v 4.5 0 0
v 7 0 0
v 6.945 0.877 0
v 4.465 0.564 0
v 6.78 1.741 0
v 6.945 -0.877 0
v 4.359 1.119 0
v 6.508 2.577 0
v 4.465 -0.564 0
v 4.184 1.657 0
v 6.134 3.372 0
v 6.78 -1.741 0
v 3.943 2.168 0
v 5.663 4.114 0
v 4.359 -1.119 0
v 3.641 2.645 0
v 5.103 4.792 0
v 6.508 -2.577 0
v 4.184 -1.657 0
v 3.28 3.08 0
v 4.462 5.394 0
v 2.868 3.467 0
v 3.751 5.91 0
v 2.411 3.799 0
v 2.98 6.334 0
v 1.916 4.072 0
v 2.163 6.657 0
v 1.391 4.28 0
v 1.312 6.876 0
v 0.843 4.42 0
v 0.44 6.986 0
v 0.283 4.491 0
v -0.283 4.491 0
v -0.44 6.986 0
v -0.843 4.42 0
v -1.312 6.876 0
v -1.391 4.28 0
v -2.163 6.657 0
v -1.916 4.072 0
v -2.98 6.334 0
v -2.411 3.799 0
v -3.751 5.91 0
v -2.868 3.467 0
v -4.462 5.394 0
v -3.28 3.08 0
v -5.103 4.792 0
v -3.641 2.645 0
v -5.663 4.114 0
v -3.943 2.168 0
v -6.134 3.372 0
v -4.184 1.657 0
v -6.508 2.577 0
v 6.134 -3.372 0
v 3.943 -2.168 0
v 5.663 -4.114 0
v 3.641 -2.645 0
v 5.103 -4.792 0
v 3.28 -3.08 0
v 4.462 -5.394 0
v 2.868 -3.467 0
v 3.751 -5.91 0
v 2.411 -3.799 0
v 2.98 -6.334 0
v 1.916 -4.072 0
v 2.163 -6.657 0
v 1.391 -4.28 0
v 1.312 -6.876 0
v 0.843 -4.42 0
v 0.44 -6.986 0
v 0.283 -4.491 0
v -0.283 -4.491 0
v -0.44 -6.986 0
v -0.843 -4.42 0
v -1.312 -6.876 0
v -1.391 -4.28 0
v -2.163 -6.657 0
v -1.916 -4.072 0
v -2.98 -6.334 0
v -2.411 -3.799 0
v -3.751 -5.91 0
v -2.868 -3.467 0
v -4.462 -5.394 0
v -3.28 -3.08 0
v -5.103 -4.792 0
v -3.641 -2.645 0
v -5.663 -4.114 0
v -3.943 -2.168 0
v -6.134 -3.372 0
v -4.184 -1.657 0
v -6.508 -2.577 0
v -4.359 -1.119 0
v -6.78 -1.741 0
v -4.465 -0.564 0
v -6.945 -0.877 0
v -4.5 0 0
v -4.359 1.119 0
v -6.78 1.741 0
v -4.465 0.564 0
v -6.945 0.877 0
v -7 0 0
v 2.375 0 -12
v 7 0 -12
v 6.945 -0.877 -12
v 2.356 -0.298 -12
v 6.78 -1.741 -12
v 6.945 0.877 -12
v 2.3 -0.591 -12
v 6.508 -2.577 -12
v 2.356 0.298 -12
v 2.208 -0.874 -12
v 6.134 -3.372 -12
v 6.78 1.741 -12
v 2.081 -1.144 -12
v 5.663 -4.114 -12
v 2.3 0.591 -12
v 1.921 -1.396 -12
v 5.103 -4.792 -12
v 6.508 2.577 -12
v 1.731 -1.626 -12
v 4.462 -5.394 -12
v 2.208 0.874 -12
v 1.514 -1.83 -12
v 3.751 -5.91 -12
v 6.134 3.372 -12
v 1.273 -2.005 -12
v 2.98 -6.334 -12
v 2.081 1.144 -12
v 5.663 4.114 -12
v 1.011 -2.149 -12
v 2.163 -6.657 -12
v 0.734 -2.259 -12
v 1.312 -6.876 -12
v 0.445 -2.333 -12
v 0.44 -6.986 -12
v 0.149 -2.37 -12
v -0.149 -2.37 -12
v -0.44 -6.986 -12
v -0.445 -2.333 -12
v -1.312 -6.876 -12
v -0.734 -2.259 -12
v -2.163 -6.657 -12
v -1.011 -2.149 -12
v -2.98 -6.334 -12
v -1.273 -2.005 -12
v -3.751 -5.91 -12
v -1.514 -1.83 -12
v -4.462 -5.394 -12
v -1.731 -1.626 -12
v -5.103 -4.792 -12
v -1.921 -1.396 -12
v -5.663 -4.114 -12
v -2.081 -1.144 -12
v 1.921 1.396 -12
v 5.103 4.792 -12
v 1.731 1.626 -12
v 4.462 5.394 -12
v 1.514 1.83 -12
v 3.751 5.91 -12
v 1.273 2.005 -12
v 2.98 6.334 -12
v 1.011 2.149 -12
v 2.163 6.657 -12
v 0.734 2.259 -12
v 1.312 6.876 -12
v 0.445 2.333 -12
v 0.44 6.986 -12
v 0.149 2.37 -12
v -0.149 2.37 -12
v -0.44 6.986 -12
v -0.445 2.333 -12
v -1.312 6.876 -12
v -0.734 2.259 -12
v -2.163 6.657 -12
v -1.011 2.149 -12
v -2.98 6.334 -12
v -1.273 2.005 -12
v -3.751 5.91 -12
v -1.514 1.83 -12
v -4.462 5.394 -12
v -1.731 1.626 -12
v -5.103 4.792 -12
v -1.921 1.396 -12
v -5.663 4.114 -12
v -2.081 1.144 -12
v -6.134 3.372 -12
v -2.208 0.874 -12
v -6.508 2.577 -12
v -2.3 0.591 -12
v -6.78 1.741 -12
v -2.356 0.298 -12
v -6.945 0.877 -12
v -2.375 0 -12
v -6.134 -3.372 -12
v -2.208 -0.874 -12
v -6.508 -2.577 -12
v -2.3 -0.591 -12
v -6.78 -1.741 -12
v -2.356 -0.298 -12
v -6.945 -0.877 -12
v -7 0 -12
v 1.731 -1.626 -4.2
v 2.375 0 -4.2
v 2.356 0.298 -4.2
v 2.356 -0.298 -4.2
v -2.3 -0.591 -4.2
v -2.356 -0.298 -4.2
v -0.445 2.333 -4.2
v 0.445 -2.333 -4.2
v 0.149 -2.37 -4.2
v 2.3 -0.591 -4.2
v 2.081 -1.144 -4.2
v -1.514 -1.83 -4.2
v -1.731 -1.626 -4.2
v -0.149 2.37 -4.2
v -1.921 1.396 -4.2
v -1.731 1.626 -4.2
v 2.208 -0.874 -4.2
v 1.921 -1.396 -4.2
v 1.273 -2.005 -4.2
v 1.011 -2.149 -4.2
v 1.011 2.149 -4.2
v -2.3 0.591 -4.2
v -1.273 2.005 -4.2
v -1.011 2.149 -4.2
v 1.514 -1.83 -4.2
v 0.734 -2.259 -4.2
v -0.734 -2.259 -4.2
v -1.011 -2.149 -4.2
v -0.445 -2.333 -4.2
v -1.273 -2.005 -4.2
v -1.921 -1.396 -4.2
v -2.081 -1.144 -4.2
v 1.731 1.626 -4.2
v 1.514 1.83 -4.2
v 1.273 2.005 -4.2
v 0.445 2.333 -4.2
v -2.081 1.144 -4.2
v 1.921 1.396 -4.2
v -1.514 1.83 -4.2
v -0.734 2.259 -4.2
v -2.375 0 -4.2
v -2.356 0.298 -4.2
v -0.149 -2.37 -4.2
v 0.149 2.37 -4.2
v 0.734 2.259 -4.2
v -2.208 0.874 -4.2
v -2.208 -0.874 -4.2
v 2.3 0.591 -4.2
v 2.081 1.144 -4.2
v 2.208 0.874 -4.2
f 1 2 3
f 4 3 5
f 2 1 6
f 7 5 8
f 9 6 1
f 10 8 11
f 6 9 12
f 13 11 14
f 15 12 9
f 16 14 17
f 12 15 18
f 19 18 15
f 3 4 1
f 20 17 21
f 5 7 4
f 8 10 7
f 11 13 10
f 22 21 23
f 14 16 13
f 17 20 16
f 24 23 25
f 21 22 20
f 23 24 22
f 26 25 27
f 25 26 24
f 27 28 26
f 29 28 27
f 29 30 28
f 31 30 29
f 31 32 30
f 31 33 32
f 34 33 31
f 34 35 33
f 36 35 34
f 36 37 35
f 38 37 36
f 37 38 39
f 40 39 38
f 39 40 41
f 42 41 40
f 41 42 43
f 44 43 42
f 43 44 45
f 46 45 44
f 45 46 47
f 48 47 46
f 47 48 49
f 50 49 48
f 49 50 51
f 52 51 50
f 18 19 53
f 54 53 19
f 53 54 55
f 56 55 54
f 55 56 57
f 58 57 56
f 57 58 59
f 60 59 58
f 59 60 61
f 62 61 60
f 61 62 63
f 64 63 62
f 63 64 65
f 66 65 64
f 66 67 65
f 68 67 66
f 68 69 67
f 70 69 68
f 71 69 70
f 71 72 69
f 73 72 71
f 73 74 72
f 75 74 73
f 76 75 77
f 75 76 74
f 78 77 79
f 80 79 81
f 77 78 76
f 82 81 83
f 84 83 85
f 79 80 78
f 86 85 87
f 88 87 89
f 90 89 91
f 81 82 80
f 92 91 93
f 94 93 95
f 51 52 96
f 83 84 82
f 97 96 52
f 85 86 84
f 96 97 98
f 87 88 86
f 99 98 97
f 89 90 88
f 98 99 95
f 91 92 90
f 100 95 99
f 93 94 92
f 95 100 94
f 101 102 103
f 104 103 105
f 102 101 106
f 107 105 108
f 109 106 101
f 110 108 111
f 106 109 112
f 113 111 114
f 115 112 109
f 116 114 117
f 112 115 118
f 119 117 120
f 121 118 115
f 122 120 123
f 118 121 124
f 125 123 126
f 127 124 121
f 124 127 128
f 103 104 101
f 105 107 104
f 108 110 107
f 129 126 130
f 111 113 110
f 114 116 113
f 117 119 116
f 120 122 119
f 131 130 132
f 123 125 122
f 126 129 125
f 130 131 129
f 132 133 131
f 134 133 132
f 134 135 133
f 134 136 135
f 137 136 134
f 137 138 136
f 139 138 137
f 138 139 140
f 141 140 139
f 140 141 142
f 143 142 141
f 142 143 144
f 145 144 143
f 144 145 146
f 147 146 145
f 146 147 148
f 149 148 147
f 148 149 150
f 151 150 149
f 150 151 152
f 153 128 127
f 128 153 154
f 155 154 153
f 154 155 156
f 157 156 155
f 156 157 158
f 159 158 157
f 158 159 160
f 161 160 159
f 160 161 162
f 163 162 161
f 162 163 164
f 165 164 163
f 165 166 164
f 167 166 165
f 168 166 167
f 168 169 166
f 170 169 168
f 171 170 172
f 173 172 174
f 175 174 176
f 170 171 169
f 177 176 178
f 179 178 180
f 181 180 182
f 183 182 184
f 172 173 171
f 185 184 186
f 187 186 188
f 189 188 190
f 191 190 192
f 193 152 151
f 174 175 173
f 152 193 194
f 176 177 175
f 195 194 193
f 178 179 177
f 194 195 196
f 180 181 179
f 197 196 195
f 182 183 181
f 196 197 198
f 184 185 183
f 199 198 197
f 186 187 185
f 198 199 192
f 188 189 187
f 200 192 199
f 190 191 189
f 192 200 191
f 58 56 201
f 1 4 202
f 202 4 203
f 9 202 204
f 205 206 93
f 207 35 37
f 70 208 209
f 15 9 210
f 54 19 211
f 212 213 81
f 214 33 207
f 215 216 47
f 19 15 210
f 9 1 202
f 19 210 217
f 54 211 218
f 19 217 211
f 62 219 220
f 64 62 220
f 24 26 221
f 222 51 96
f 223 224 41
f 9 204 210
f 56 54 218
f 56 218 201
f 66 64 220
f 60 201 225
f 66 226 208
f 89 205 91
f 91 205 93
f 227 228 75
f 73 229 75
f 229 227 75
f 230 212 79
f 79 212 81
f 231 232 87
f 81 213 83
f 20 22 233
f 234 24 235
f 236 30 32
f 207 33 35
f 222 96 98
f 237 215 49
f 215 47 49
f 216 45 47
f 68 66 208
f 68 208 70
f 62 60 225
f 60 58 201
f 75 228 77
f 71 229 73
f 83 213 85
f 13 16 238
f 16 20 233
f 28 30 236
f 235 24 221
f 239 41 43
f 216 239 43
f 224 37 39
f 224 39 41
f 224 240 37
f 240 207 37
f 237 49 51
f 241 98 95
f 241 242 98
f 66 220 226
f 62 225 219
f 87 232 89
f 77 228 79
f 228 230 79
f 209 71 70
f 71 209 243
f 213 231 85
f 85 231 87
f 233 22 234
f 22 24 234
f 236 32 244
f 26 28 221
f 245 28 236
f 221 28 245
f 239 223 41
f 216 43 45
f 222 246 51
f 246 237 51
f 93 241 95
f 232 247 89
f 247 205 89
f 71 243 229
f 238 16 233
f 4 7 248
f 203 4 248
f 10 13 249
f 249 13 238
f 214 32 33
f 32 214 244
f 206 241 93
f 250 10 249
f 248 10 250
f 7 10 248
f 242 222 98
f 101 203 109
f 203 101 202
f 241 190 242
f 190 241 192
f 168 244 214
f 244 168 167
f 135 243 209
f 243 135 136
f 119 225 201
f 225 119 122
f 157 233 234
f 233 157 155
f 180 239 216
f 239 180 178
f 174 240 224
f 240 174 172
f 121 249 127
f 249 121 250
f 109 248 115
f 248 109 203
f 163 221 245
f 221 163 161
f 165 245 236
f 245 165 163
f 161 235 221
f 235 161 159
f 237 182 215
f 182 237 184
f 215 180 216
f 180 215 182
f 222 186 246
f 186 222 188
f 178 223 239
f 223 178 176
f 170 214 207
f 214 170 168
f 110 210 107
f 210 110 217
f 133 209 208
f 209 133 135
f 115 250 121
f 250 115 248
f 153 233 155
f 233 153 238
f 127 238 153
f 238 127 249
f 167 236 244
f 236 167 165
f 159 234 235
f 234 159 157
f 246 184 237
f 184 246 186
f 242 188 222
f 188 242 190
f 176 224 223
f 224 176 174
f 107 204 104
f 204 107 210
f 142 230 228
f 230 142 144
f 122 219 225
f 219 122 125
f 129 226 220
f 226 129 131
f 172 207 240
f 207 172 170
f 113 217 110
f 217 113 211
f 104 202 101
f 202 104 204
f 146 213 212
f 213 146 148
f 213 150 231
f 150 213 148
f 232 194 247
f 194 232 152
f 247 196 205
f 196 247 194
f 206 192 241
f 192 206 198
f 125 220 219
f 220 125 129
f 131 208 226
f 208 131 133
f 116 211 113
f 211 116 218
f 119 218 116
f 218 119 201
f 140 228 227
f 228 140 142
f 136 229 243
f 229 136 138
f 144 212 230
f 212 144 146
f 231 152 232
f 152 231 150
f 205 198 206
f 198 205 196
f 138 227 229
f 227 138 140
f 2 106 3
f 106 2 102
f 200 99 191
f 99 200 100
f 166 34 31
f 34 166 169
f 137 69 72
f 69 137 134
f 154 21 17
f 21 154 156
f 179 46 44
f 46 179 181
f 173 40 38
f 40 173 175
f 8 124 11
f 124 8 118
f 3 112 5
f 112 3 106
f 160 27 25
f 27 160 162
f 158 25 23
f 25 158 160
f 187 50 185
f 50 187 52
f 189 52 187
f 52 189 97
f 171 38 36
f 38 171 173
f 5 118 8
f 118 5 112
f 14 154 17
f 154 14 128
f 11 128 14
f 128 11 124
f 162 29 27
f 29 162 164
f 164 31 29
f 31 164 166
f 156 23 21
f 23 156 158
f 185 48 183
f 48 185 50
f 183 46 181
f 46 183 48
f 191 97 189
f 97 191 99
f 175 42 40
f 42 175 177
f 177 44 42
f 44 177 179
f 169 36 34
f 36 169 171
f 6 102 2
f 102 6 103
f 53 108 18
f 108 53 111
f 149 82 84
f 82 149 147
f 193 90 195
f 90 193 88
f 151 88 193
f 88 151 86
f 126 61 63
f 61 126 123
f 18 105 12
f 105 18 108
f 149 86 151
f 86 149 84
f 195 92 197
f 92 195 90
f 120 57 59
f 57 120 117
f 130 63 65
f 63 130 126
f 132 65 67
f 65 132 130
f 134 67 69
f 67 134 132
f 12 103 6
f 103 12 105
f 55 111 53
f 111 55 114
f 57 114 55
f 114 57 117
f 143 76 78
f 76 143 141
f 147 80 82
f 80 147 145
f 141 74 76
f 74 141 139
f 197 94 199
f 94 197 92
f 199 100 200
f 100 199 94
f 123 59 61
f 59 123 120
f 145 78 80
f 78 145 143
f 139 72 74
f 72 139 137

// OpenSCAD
$fn = 50;


difference() {
	union() {
		translate(v = [0, 0, -12.0000000000]) {
			cylinder(h = 12, r = 7.0000000000);
		}
		cylinder(h = 0, r = 10.0000000000);
	}
	union() {
		translate(v = [0, 0, 0]) {
			rotate(a = [0, 0, 0]) {
				difference() {
					union() {
						#translate(v = [0, 0, -12.0000000000]) {
							cylinder(h = 12, r = 2.2500000000);
						}
						#translate(v = [0, 0, -4.2000000000]) {
							cylinder(h = 4.2000000000, r = 7.0000000000, r1 = 2.3750000000, r2 = 4.5000000000);
						}
						#translate(v = [0, 0, -12.0000000000]) {
							cylinder(h = 12, r = 2.3750000000);
						}
						#translate(v = [0, 0, -12.0000000000]) {
							cylinder(h = 12, r = 2.2500000000);
						}
					}
					union();
				}
			}
		}
	}
}
